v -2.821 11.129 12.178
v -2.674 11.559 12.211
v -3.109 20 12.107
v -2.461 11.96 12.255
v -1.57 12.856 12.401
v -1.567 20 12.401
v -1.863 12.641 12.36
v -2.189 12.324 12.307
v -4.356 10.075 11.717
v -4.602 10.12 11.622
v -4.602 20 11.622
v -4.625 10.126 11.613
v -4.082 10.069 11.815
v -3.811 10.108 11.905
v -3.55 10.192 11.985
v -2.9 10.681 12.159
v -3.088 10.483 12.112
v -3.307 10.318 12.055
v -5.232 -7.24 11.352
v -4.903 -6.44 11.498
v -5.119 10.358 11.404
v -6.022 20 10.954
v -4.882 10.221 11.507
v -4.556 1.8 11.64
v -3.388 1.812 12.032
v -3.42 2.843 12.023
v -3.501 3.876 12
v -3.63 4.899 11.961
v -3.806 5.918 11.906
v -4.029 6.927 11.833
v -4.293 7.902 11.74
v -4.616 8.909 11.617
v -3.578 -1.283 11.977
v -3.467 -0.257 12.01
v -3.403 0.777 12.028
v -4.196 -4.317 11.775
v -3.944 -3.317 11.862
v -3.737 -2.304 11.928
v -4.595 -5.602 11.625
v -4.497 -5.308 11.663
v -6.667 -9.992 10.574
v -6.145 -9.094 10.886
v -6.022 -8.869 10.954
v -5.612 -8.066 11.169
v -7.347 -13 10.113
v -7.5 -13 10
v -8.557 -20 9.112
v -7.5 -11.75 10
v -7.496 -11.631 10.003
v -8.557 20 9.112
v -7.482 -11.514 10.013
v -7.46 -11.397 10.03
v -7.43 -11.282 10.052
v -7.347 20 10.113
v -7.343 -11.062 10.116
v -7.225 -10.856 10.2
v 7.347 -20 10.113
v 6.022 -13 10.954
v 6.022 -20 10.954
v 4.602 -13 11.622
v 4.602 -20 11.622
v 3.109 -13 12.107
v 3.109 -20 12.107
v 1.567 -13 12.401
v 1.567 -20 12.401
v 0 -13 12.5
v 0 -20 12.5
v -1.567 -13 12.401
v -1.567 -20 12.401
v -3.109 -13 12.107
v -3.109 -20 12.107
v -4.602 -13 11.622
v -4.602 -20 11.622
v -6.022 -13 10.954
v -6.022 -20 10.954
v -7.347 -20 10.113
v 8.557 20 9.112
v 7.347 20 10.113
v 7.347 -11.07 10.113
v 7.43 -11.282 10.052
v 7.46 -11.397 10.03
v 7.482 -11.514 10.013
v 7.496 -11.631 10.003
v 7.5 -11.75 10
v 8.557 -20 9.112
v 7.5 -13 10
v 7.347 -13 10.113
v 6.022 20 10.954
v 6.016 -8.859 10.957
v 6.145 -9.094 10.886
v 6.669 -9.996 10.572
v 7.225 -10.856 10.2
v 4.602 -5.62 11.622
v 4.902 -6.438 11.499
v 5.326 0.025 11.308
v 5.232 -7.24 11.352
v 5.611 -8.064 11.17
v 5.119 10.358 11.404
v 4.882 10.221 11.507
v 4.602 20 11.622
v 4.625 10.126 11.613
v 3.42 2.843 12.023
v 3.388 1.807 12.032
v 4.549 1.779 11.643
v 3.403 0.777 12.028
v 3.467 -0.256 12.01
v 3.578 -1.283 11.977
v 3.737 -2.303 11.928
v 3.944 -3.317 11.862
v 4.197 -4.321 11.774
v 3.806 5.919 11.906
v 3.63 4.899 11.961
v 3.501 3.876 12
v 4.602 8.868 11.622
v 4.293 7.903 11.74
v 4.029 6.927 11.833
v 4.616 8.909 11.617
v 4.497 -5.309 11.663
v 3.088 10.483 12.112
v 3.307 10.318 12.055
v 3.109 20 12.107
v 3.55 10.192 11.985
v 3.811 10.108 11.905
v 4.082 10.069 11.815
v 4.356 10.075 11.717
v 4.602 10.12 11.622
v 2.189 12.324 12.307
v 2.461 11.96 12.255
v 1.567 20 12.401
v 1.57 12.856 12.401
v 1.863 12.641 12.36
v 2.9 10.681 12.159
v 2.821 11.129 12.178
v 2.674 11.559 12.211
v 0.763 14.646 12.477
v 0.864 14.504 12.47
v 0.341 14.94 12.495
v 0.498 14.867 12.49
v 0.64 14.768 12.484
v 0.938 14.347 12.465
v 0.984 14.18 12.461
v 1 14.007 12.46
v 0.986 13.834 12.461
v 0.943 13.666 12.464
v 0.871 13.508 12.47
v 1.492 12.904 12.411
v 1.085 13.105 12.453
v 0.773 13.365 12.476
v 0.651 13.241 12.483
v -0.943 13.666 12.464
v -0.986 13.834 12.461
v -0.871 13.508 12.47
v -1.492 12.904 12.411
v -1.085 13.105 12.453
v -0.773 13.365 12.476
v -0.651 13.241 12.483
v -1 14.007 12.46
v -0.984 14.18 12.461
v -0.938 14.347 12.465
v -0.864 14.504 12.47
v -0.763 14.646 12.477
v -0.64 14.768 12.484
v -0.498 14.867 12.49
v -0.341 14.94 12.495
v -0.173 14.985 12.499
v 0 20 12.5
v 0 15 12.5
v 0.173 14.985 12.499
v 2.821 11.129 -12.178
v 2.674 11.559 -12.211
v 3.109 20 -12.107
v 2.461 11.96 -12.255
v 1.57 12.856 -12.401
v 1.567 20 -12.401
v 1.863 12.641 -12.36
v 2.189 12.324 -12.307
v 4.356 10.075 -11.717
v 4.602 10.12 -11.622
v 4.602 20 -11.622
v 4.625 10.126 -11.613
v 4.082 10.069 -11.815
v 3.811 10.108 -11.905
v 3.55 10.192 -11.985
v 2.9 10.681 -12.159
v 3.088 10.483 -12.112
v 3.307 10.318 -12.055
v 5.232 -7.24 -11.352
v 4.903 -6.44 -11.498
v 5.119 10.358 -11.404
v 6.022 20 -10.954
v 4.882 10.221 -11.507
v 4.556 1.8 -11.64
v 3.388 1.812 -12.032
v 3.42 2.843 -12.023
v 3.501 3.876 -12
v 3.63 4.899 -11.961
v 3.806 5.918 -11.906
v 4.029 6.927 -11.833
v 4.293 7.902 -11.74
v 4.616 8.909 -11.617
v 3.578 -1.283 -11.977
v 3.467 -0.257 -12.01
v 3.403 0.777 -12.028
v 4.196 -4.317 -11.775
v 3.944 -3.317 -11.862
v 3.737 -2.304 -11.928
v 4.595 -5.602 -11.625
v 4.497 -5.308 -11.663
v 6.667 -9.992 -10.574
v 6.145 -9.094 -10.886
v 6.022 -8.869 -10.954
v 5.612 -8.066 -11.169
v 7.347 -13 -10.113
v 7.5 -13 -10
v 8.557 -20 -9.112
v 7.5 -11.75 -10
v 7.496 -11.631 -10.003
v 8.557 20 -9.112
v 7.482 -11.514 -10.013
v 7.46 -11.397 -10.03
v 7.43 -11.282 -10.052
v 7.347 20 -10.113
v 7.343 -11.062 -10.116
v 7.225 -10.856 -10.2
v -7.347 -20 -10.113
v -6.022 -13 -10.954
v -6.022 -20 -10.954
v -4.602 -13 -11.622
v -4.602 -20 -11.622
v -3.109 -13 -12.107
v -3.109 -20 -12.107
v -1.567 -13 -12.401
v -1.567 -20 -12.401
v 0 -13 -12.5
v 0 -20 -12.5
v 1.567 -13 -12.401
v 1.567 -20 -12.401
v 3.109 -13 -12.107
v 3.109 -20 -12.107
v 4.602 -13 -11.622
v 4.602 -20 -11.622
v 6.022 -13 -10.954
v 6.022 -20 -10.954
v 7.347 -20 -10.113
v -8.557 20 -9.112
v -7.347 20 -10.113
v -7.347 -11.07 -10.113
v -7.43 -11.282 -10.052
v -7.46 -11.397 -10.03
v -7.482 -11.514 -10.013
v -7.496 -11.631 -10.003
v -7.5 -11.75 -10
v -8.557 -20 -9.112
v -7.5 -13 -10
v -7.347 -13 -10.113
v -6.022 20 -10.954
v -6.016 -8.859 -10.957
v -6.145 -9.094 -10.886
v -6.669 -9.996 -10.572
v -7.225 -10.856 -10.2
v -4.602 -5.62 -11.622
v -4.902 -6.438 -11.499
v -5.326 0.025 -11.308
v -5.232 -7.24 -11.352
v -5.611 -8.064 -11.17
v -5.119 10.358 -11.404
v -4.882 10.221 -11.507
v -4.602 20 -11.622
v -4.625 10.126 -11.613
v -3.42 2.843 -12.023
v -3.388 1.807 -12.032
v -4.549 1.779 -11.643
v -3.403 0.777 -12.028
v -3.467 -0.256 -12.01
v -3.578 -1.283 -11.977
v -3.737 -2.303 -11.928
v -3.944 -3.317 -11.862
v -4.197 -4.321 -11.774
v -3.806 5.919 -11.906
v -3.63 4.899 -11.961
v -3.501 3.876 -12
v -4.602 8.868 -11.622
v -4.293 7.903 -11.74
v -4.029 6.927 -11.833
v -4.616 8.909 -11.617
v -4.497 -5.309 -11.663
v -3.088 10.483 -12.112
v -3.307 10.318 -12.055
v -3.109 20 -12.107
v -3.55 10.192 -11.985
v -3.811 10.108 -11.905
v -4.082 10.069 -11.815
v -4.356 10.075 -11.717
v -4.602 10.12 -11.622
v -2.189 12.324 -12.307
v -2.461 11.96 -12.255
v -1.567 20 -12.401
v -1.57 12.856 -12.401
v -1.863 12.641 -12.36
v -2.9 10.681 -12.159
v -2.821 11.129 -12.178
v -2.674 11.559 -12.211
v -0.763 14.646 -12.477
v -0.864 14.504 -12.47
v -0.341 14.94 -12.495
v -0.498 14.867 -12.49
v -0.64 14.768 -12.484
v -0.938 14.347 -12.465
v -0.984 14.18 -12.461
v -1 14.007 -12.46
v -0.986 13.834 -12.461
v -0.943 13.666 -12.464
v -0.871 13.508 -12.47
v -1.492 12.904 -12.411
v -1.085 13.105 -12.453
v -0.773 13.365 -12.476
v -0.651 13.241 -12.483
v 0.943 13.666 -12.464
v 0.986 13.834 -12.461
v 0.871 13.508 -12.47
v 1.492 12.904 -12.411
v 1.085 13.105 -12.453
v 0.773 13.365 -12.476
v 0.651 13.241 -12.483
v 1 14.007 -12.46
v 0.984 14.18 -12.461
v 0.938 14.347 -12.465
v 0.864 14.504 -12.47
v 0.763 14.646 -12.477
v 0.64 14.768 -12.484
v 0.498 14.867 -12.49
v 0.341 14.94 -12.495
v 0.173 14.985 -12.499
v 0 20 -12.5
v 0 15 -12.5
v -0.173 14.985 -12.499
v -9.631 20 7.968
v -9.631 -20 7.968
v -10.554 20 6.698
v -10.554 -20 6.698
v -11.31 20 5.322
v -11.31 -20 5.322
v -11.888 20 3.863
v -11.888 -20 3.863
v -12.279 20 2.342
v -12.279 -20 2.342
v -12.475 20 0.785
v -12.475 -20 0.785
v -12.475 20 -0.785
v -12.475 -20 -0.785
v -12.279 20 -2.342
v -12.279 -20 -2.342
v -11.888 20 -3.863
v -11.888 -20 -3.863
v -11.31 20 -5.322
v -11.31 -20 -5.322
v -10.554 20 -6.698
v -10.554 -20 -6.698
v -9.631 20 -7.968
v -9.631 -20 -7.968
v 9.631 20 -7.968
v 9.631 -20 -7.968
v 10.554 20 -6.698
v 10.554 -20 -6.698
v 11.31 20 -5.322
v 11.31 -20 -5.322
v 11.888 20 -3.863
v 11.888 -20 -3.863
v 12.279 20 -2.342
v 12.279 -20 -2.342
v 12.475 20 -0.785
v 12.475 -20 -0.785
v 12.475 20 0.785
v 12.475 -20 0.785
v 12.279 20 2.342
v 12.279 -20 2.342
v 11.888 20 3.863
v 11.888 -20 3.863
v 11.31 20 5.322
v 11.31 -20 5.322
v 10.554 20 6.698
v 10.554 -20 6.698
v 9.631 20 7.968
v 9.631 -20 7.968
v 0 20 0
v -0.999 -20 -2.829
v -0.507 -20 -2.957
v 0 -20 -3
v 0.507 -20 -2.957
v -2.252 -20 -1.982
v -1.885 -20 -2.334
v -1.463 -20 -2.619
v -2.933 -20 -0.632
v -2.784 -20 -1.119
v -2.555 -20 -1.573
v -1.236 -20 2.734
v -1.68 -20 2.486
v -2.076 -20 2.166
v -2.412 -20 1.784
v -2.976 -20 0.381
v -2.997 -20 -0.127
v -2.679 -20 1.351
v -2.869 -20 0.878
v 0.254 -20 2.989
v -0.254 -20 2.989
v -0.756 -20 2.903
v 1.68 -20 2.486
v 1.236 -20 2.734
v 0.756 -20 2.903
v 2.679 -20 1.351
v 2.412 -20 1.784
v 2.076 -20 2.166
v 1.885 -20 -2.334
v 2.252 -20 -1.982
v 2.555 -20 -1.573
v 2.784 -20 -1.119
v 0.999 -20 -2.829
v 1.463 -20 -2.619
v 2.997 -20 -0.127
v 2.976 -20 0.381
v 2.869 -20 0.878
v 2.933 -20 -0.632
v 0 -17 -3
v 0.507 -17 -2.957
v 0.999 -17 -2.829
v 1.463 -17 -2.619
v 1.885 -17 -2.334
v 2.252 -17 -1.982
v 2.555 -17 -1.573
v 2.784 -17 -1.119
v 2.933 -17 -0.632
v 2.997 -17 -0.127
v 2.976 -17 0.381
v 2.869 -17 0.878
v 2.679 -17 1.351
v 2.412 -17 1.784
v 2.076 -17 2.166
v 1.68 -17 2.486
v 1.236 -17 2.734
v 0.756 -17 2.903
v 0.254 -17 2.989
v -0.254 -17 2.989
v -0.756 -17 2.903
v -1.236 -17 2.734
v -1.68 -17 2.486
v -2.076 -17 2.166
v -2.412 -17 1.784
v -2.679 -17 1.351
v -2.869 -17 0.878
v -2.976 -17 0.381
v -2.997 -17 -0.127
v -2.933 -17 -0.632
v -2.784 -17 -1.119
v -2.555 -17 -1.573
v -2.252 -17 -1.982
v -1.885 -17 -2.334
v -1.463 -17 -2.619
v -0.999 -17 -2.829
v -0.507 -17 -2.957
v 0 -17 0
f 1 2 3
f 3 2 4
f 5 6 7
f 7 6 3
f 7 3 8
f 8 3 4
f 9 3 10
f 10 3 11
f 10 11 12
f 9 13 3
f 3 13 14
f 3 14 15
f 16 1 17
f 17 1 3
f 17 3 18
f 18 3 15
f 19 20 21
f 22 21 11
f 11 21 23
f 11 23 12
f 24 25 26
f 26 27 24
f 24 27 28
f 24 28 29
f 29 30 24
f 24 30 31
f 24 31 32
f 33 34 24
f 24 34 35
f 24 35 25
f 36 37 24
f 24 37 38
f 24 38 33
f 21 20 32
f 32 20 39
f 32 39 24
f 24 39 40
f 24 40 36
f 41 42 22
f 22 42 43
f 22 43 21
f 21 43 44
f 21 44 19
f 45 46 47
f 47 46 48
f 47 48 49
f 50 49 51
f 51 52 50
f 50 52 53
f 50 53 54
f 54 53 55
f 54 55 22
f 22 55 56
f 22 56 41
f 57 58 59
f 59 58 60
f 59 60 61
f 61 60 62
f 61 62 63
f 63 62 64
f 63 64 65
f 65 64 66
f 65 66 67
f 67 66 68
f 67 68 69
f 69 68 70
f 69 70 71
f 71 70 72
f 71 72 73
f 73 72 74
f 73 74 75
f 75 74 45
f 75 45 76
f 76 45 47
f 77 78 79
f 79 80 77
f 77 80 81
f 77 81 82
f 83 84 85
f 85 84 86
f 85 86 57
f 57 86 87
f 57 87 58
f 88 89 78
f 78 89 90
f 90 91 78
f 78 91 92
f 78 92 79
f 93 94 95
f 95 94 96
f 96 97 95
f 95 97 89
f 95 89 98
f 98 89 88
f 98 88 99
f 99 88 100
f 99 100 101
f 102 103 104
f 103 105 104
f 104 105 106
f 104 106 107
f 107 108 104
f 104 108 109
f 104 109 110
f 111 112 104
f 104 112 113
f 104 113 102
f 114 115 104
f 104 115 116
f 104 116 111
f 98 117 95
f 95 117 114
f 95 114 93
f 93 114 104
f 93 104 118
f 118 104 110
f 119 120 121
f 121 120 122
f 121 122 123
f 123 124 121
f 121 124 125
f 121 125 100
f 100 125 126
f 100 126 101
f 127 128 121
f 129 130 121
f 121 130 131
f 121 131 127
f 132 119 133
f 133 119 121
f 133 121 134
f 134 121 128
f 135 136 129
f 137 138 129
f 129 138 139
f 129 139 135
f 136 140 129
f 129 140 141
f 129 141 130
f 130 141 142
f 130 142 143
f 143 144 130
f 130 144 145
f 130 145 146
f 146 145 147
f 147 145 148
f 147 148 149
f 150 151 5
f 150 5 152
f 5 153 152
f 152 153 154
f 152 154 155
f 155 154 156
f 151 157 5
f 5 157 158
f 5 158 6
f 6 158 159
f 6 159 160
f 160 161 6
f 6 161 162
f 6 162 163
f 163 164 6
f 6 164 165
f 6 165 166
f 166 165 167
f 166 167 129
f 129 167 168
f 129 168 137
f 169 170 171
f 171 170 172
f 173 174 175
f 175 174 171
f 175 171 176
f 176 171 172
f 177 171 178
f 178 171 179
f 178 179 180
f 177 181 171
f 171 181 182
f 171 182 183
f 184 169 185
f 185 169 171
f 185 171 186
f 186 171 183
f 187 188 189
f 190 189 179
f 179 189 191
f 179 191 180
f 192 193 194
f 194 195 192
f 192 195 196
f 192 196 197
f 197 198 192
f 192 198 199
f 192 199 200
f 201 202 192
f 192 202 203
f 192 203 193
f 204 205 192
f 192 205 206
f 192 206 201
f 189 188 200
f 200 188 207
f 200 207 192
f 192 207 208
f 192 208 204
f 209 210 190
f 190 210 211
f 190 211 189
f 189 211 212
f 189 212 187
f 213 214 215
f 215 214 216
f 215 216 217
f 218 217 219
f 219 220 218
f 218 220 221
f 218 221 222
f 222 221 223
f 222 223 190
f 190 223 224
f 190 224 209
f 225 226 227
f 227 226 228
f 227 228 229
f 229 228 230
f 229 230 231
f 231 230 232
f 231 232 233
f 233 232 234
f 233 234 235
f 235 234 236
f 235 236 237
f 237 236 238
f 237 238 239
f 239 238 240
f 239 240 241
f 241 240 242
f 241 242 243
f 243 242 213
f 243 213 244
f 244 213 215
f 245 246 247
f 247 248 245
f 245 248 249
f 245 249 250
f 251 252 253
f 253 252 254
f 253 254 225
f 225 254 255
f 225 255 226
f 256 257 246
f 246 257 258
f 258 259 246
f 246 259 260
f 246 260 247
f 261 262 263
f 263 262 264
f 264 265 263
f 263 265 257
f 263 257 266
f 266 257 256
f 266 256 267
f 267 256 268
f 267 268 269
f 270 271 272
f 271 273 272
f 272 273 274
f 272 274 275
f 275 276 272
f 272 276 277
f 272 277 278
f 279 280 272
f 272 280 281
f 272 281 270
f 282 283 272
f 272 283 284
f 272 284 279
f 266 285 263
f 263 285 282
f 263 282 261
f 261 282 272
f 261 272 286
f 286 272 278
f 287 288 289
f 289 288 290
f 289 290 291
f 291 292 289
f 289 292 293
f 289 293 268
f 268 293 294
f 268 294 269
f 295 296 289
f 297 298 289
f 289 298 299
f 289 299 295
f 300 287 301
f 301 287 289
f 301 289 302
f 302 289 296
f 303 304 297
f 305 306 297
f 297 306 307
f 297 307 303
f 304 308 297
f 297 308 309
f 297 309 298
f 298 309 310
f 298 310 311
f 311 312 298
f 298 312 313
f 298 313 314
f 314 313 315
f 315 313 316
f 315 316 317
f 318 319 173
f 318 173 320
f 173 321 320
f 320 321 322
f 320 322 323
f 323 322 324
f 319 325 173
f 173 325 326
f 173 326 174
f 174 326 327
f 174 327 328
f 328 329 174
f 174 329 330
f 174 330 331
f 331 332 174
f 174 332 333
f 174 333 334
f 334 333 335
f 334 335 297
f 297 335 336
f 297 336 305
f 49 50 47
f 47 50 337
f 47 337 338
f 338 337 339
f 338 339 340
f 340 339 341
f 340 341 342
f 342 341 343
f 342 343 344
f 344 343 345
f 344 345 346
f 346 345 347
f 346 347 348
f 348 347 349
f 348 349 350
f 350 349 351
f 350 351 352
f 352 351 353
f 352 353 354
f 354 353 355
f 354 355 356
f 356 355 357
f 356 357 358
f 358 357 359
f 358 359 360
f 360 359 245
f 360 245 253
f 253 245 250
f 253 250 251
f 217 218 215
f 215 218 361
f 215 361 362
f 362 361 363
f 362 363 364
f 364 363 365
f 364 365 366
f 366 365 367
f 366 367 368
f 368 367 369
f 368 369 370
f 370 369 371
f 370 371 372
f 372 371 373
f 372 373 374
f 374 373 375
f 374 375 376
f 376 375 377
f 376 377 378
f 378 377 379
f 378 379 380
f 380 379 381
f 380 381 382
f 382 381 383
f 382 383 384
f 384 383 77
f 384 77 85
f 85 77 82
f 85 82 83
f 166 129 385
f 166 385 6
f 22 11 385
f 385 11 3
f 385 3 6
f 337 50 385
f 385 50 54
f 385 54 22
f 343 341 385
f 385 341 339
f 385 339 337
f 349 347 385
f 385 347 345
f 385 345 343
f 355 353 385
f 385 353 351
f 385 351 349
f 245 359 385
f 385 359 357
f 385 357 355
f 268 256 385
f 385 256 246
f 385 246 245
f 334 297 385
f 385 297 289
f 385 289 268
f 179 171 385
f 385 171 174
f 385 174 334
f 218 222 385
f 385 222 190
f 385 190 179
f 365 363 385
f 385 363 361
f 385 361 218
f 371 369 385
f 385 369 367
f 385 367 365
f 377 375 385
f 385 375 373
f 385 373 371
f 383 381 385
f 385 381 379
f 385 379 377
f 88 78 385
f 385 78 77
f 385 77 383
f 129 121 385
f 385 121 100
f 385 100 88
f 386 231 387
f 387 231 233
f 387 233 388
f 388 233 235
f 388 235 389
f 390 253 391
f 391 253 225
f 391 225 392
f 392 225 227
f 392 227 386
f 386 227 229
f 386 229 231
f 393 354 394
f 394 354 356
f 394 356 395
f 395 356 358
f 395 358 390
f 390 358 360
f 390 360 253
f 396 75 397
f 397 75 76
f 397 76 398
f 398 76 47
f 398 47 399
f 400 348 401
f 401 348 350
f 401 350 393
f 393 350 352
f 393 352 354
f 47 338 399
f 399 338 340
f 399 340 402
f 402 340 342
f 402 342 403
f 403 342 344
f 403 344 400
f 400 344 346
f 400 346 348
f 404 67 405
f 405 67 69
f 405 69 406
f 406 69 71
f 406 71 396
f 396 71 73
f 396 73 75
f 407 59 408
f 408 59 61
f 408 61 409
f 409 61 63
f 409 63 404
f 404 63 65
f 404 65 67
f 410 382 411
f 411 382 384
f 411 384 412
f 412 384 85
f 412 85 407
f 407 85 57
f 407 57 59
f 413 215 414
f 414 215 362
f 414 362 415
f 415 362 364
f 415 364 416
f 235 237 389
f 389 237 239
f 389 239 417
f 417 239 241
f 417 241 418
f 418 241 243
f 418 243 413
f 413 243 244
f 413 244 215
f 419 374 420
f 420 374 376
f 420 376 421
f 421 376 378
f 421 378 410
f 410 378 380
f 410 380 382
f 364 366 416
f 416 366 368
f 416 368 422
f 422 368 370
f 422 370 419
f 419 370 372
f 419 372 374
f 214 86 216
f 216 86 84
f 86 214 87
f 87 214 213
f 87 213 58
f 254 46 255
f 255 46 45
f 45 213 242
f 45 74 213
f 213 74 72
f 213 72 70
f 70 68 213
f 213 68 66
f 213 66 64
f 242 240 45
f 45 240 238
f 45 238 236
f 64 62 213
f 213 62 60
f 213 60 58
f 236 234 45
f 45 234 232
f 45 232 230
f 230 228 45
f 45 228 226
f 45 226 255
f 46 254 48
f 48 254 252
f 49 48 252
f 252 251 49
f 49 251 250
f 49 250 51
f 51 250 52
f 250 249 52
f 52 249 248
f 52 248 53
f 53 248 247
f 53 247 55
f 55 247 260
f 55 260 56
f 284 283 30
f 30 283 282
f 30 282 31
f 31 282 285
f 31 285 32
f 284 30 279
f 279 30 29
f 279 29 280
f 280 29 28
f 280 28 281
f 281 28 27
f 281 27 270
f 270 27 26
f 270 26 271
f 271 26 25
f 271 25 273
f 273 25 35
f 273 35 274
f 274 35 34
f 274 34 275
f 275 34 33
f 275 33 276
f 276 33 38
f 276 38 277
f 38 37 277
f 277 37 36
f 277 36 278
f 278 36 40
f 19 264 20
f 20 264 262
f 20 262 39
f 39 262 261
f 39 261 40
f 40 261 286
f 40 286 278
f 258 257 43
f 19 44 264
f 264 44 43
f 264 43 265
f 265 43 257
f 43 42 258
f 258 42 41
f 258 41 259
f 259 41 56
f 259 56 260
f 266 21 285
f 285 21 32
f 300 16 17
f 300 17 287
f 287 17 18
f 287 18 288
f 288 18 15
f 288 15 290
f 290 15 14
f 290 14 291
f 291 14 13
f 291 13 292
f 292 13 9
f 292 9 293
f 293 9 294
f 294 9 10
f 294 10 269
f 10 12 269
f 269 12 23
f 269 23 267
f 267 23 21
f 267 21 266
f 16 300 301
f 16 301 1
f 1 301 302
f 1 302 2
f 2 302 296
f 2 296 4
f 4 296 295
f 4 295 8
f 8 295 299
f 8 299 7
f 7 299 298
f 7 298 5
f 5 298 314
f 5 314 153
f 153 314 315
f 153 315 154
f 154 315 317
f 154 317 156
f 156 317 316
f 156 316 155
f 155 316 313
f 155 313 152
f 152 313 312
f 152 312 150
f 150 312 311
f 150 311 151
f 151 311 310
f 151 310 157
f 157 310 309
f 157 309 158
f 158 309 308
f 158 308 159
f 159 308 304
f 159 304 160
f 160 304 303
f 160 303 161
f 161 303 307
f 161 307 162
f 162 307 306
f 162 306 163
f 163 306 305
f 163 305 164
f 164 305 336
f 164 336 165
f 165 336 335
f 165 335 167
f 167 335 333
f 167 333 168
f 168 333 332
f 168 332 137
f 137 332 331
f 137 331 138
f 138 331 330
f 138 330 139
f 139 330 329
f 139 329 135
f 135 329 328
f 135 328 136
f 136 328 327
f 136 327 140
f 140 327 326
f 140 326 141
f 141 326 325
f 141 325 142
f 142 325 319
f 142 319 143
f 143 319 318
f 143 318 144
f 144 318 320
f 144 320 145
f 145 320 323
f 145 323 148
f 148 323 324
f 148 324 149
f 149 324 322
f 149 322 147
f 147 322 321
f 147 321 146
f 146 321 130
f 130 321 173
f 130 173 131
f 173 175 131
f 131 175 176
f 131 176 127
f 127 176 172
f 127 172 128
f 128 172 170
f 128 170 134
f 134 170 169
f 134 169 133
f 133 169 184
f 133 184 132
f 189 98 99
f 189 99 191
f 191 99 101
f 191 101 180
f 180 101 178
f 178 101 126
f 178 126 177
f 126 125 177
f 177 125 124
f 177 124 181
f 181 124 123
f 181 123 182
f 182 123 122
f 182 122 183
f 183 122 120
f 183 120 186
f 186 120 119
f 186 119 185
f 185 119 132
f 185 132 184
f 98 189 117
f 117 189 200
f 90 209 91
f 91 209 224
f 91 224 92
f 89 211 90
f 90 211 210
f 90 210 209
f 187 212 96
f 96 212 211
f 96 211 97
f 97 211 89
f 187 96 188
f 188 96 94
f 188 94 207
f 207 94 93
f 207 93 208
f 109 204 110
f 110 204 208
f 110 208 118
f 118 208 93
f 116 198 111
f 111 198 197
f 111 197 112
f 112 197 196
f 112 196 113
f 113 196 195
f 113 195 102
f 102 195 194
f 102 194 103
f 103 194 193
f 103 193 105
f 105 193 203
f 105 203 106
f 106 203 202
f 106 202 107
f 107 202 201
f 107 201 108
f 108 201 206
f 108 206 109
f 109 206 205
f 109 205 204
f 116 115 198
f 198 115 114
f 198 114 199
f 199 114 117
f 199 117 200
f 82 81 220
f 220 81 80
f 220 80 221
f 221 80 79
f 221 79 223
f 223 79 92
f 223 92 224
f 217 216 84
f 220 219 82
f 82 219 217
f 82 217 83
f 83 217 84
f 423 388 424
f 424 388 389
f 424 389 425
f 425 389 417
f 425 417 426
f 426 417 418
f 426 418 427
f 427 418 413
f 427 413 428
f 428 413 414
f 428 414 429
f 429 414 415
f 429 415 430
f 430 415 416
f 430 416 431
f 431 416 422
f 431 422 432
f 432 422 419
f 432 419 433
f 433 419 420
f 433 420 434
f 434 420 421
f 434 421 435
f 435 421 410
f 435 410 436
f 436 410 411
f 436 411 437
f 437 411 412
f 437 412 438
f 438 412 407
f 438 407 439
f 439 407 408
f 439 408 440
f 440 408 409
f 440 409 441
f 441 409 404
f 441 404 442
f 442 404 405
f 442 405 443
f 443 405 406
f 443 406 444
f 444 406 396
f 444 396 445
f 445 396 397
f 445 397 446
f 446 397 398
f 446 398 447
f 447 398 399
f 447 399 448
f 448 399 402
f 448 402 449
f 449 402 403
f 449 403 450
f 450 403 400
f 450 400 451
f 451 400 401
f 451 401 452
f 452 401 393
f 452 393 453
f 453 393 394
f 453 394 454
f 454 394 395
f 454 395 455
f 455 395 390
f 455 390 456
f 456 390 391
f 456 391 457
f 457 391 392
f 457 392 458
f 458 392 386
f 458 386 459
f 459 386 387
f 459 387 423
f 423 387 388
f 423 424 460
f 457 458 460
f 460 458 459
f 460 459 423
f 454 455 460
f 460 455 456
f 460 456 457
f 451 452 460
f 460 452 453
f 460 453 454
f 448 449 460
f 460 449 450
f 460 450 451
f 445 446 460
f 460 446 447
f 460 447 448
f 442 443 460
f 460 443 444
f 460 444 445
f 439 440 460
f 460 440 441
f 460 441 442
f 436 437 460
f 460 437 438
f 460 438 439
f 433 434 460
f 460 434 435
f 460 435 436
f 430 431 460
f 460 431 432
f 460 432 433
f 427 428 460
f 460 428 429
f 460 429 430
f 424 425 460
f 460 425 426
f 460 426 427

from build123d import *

# Parameters (mm, degrees)
SKETCH2_R               = 12.5
BOSS_EXTRUDE1_DEPTH     = 20
CUT_EXTRUDE1_DEPTH      = 13.5
CUT_EXTRUDE1_DEPTH_BACK = 13.5
SKETCH4_R               = 3
CUT_EXTRUDE2_DEPTH      = 3


with BuildPart() as part:
    # Sketch2 → Boss-Extrude1 (new body, symmetric)
    with BuildSketch(Plane(origin=(0, 0, 0), x_dir=(1, 0, 0), z_dir=(0, 1, 0))):
        Circle(SKETCH2_R)
    extrude(amount=BOSS_EXTRUDE1_DEPTH, both=True)

    # Sketch3 → Cut-Extrude1 (cut, two sides)
    with BuildSketch(Plane.XY) as cut_extrude1_sk:
        with BuildLine():
            Line((-7.5, -13), (7.5, -13))
            Line((7.5, -13), (7.5, -11.75))
            ThreePointArc((7.5, -11.75), (7.429735441, -11.282497399), (7.225150448, -10.856304049))
            ThreePointArc((7.225150448, -10.856304049), (3.577993471, -1.282835033), (4.615823257, 8.909121225))
            Line((4.615823257, 8.909121225), (5.118882067, 10.357861534))
            ThreePointArc((5.118882067, 10.357861534), (3.945658152, 10.08267593), (2.899801007, 10.681311299))
            ThreePointArc((2.899801007, 10.681311299), (2.188817627, 12.324233844), (0.651338796, 13.241212959))
            ThreePointArc((0.651338796, 13.241212959), (0, 15), (-0.651338796, 13.241212959))
            ThreePointArc((-0.651338796, 13.241212959), (-2.188817627, 12.324233844), (-2.899801007, 10.681311299))
            ThreePointArc((-2.899801007, 10.681311299), (-3.945658152, 10.08267593), (-5.118882067, 10.357861534))
            Line((-5.118882067, 10.357861534), (-4.615823257, 8.909121225))
            ThreePointArc((-4.615823257, 8.909121225), (-3.577993471, -1.282835033), (-7.225150448, -10.856304049))
            ThreePointArc((-7.225150448, -10.856304049), (-7.429735441, -11.282497399), (-7.5, -11.75))
            Line((-7.5, -11.75), (-7.5, -13))
        make_face()
    extrude(amount=CUT_EXTRUDE1_DEPTH, mode=Mode.SUBTRACT)
    extrude(cut_extrude1_sk.sketch, amount=-CUT_EXTRUDE1_DEPTH_BACK, mode=Mode.SUBTRACT)

    # Sketch4 → Cut-Extrude2 (cut)
    with BuildSketch(Plane(origin=(0, -20, 0), x_dir=(-1, 0, 0), z_dir=(0, -1, 0))):
        Circle(SKETCH4_R)
    extrude(amount=-CUT_EXTRUDE2_DEPTH, mode=Mode.SUBTRACT)


solid = part.part
